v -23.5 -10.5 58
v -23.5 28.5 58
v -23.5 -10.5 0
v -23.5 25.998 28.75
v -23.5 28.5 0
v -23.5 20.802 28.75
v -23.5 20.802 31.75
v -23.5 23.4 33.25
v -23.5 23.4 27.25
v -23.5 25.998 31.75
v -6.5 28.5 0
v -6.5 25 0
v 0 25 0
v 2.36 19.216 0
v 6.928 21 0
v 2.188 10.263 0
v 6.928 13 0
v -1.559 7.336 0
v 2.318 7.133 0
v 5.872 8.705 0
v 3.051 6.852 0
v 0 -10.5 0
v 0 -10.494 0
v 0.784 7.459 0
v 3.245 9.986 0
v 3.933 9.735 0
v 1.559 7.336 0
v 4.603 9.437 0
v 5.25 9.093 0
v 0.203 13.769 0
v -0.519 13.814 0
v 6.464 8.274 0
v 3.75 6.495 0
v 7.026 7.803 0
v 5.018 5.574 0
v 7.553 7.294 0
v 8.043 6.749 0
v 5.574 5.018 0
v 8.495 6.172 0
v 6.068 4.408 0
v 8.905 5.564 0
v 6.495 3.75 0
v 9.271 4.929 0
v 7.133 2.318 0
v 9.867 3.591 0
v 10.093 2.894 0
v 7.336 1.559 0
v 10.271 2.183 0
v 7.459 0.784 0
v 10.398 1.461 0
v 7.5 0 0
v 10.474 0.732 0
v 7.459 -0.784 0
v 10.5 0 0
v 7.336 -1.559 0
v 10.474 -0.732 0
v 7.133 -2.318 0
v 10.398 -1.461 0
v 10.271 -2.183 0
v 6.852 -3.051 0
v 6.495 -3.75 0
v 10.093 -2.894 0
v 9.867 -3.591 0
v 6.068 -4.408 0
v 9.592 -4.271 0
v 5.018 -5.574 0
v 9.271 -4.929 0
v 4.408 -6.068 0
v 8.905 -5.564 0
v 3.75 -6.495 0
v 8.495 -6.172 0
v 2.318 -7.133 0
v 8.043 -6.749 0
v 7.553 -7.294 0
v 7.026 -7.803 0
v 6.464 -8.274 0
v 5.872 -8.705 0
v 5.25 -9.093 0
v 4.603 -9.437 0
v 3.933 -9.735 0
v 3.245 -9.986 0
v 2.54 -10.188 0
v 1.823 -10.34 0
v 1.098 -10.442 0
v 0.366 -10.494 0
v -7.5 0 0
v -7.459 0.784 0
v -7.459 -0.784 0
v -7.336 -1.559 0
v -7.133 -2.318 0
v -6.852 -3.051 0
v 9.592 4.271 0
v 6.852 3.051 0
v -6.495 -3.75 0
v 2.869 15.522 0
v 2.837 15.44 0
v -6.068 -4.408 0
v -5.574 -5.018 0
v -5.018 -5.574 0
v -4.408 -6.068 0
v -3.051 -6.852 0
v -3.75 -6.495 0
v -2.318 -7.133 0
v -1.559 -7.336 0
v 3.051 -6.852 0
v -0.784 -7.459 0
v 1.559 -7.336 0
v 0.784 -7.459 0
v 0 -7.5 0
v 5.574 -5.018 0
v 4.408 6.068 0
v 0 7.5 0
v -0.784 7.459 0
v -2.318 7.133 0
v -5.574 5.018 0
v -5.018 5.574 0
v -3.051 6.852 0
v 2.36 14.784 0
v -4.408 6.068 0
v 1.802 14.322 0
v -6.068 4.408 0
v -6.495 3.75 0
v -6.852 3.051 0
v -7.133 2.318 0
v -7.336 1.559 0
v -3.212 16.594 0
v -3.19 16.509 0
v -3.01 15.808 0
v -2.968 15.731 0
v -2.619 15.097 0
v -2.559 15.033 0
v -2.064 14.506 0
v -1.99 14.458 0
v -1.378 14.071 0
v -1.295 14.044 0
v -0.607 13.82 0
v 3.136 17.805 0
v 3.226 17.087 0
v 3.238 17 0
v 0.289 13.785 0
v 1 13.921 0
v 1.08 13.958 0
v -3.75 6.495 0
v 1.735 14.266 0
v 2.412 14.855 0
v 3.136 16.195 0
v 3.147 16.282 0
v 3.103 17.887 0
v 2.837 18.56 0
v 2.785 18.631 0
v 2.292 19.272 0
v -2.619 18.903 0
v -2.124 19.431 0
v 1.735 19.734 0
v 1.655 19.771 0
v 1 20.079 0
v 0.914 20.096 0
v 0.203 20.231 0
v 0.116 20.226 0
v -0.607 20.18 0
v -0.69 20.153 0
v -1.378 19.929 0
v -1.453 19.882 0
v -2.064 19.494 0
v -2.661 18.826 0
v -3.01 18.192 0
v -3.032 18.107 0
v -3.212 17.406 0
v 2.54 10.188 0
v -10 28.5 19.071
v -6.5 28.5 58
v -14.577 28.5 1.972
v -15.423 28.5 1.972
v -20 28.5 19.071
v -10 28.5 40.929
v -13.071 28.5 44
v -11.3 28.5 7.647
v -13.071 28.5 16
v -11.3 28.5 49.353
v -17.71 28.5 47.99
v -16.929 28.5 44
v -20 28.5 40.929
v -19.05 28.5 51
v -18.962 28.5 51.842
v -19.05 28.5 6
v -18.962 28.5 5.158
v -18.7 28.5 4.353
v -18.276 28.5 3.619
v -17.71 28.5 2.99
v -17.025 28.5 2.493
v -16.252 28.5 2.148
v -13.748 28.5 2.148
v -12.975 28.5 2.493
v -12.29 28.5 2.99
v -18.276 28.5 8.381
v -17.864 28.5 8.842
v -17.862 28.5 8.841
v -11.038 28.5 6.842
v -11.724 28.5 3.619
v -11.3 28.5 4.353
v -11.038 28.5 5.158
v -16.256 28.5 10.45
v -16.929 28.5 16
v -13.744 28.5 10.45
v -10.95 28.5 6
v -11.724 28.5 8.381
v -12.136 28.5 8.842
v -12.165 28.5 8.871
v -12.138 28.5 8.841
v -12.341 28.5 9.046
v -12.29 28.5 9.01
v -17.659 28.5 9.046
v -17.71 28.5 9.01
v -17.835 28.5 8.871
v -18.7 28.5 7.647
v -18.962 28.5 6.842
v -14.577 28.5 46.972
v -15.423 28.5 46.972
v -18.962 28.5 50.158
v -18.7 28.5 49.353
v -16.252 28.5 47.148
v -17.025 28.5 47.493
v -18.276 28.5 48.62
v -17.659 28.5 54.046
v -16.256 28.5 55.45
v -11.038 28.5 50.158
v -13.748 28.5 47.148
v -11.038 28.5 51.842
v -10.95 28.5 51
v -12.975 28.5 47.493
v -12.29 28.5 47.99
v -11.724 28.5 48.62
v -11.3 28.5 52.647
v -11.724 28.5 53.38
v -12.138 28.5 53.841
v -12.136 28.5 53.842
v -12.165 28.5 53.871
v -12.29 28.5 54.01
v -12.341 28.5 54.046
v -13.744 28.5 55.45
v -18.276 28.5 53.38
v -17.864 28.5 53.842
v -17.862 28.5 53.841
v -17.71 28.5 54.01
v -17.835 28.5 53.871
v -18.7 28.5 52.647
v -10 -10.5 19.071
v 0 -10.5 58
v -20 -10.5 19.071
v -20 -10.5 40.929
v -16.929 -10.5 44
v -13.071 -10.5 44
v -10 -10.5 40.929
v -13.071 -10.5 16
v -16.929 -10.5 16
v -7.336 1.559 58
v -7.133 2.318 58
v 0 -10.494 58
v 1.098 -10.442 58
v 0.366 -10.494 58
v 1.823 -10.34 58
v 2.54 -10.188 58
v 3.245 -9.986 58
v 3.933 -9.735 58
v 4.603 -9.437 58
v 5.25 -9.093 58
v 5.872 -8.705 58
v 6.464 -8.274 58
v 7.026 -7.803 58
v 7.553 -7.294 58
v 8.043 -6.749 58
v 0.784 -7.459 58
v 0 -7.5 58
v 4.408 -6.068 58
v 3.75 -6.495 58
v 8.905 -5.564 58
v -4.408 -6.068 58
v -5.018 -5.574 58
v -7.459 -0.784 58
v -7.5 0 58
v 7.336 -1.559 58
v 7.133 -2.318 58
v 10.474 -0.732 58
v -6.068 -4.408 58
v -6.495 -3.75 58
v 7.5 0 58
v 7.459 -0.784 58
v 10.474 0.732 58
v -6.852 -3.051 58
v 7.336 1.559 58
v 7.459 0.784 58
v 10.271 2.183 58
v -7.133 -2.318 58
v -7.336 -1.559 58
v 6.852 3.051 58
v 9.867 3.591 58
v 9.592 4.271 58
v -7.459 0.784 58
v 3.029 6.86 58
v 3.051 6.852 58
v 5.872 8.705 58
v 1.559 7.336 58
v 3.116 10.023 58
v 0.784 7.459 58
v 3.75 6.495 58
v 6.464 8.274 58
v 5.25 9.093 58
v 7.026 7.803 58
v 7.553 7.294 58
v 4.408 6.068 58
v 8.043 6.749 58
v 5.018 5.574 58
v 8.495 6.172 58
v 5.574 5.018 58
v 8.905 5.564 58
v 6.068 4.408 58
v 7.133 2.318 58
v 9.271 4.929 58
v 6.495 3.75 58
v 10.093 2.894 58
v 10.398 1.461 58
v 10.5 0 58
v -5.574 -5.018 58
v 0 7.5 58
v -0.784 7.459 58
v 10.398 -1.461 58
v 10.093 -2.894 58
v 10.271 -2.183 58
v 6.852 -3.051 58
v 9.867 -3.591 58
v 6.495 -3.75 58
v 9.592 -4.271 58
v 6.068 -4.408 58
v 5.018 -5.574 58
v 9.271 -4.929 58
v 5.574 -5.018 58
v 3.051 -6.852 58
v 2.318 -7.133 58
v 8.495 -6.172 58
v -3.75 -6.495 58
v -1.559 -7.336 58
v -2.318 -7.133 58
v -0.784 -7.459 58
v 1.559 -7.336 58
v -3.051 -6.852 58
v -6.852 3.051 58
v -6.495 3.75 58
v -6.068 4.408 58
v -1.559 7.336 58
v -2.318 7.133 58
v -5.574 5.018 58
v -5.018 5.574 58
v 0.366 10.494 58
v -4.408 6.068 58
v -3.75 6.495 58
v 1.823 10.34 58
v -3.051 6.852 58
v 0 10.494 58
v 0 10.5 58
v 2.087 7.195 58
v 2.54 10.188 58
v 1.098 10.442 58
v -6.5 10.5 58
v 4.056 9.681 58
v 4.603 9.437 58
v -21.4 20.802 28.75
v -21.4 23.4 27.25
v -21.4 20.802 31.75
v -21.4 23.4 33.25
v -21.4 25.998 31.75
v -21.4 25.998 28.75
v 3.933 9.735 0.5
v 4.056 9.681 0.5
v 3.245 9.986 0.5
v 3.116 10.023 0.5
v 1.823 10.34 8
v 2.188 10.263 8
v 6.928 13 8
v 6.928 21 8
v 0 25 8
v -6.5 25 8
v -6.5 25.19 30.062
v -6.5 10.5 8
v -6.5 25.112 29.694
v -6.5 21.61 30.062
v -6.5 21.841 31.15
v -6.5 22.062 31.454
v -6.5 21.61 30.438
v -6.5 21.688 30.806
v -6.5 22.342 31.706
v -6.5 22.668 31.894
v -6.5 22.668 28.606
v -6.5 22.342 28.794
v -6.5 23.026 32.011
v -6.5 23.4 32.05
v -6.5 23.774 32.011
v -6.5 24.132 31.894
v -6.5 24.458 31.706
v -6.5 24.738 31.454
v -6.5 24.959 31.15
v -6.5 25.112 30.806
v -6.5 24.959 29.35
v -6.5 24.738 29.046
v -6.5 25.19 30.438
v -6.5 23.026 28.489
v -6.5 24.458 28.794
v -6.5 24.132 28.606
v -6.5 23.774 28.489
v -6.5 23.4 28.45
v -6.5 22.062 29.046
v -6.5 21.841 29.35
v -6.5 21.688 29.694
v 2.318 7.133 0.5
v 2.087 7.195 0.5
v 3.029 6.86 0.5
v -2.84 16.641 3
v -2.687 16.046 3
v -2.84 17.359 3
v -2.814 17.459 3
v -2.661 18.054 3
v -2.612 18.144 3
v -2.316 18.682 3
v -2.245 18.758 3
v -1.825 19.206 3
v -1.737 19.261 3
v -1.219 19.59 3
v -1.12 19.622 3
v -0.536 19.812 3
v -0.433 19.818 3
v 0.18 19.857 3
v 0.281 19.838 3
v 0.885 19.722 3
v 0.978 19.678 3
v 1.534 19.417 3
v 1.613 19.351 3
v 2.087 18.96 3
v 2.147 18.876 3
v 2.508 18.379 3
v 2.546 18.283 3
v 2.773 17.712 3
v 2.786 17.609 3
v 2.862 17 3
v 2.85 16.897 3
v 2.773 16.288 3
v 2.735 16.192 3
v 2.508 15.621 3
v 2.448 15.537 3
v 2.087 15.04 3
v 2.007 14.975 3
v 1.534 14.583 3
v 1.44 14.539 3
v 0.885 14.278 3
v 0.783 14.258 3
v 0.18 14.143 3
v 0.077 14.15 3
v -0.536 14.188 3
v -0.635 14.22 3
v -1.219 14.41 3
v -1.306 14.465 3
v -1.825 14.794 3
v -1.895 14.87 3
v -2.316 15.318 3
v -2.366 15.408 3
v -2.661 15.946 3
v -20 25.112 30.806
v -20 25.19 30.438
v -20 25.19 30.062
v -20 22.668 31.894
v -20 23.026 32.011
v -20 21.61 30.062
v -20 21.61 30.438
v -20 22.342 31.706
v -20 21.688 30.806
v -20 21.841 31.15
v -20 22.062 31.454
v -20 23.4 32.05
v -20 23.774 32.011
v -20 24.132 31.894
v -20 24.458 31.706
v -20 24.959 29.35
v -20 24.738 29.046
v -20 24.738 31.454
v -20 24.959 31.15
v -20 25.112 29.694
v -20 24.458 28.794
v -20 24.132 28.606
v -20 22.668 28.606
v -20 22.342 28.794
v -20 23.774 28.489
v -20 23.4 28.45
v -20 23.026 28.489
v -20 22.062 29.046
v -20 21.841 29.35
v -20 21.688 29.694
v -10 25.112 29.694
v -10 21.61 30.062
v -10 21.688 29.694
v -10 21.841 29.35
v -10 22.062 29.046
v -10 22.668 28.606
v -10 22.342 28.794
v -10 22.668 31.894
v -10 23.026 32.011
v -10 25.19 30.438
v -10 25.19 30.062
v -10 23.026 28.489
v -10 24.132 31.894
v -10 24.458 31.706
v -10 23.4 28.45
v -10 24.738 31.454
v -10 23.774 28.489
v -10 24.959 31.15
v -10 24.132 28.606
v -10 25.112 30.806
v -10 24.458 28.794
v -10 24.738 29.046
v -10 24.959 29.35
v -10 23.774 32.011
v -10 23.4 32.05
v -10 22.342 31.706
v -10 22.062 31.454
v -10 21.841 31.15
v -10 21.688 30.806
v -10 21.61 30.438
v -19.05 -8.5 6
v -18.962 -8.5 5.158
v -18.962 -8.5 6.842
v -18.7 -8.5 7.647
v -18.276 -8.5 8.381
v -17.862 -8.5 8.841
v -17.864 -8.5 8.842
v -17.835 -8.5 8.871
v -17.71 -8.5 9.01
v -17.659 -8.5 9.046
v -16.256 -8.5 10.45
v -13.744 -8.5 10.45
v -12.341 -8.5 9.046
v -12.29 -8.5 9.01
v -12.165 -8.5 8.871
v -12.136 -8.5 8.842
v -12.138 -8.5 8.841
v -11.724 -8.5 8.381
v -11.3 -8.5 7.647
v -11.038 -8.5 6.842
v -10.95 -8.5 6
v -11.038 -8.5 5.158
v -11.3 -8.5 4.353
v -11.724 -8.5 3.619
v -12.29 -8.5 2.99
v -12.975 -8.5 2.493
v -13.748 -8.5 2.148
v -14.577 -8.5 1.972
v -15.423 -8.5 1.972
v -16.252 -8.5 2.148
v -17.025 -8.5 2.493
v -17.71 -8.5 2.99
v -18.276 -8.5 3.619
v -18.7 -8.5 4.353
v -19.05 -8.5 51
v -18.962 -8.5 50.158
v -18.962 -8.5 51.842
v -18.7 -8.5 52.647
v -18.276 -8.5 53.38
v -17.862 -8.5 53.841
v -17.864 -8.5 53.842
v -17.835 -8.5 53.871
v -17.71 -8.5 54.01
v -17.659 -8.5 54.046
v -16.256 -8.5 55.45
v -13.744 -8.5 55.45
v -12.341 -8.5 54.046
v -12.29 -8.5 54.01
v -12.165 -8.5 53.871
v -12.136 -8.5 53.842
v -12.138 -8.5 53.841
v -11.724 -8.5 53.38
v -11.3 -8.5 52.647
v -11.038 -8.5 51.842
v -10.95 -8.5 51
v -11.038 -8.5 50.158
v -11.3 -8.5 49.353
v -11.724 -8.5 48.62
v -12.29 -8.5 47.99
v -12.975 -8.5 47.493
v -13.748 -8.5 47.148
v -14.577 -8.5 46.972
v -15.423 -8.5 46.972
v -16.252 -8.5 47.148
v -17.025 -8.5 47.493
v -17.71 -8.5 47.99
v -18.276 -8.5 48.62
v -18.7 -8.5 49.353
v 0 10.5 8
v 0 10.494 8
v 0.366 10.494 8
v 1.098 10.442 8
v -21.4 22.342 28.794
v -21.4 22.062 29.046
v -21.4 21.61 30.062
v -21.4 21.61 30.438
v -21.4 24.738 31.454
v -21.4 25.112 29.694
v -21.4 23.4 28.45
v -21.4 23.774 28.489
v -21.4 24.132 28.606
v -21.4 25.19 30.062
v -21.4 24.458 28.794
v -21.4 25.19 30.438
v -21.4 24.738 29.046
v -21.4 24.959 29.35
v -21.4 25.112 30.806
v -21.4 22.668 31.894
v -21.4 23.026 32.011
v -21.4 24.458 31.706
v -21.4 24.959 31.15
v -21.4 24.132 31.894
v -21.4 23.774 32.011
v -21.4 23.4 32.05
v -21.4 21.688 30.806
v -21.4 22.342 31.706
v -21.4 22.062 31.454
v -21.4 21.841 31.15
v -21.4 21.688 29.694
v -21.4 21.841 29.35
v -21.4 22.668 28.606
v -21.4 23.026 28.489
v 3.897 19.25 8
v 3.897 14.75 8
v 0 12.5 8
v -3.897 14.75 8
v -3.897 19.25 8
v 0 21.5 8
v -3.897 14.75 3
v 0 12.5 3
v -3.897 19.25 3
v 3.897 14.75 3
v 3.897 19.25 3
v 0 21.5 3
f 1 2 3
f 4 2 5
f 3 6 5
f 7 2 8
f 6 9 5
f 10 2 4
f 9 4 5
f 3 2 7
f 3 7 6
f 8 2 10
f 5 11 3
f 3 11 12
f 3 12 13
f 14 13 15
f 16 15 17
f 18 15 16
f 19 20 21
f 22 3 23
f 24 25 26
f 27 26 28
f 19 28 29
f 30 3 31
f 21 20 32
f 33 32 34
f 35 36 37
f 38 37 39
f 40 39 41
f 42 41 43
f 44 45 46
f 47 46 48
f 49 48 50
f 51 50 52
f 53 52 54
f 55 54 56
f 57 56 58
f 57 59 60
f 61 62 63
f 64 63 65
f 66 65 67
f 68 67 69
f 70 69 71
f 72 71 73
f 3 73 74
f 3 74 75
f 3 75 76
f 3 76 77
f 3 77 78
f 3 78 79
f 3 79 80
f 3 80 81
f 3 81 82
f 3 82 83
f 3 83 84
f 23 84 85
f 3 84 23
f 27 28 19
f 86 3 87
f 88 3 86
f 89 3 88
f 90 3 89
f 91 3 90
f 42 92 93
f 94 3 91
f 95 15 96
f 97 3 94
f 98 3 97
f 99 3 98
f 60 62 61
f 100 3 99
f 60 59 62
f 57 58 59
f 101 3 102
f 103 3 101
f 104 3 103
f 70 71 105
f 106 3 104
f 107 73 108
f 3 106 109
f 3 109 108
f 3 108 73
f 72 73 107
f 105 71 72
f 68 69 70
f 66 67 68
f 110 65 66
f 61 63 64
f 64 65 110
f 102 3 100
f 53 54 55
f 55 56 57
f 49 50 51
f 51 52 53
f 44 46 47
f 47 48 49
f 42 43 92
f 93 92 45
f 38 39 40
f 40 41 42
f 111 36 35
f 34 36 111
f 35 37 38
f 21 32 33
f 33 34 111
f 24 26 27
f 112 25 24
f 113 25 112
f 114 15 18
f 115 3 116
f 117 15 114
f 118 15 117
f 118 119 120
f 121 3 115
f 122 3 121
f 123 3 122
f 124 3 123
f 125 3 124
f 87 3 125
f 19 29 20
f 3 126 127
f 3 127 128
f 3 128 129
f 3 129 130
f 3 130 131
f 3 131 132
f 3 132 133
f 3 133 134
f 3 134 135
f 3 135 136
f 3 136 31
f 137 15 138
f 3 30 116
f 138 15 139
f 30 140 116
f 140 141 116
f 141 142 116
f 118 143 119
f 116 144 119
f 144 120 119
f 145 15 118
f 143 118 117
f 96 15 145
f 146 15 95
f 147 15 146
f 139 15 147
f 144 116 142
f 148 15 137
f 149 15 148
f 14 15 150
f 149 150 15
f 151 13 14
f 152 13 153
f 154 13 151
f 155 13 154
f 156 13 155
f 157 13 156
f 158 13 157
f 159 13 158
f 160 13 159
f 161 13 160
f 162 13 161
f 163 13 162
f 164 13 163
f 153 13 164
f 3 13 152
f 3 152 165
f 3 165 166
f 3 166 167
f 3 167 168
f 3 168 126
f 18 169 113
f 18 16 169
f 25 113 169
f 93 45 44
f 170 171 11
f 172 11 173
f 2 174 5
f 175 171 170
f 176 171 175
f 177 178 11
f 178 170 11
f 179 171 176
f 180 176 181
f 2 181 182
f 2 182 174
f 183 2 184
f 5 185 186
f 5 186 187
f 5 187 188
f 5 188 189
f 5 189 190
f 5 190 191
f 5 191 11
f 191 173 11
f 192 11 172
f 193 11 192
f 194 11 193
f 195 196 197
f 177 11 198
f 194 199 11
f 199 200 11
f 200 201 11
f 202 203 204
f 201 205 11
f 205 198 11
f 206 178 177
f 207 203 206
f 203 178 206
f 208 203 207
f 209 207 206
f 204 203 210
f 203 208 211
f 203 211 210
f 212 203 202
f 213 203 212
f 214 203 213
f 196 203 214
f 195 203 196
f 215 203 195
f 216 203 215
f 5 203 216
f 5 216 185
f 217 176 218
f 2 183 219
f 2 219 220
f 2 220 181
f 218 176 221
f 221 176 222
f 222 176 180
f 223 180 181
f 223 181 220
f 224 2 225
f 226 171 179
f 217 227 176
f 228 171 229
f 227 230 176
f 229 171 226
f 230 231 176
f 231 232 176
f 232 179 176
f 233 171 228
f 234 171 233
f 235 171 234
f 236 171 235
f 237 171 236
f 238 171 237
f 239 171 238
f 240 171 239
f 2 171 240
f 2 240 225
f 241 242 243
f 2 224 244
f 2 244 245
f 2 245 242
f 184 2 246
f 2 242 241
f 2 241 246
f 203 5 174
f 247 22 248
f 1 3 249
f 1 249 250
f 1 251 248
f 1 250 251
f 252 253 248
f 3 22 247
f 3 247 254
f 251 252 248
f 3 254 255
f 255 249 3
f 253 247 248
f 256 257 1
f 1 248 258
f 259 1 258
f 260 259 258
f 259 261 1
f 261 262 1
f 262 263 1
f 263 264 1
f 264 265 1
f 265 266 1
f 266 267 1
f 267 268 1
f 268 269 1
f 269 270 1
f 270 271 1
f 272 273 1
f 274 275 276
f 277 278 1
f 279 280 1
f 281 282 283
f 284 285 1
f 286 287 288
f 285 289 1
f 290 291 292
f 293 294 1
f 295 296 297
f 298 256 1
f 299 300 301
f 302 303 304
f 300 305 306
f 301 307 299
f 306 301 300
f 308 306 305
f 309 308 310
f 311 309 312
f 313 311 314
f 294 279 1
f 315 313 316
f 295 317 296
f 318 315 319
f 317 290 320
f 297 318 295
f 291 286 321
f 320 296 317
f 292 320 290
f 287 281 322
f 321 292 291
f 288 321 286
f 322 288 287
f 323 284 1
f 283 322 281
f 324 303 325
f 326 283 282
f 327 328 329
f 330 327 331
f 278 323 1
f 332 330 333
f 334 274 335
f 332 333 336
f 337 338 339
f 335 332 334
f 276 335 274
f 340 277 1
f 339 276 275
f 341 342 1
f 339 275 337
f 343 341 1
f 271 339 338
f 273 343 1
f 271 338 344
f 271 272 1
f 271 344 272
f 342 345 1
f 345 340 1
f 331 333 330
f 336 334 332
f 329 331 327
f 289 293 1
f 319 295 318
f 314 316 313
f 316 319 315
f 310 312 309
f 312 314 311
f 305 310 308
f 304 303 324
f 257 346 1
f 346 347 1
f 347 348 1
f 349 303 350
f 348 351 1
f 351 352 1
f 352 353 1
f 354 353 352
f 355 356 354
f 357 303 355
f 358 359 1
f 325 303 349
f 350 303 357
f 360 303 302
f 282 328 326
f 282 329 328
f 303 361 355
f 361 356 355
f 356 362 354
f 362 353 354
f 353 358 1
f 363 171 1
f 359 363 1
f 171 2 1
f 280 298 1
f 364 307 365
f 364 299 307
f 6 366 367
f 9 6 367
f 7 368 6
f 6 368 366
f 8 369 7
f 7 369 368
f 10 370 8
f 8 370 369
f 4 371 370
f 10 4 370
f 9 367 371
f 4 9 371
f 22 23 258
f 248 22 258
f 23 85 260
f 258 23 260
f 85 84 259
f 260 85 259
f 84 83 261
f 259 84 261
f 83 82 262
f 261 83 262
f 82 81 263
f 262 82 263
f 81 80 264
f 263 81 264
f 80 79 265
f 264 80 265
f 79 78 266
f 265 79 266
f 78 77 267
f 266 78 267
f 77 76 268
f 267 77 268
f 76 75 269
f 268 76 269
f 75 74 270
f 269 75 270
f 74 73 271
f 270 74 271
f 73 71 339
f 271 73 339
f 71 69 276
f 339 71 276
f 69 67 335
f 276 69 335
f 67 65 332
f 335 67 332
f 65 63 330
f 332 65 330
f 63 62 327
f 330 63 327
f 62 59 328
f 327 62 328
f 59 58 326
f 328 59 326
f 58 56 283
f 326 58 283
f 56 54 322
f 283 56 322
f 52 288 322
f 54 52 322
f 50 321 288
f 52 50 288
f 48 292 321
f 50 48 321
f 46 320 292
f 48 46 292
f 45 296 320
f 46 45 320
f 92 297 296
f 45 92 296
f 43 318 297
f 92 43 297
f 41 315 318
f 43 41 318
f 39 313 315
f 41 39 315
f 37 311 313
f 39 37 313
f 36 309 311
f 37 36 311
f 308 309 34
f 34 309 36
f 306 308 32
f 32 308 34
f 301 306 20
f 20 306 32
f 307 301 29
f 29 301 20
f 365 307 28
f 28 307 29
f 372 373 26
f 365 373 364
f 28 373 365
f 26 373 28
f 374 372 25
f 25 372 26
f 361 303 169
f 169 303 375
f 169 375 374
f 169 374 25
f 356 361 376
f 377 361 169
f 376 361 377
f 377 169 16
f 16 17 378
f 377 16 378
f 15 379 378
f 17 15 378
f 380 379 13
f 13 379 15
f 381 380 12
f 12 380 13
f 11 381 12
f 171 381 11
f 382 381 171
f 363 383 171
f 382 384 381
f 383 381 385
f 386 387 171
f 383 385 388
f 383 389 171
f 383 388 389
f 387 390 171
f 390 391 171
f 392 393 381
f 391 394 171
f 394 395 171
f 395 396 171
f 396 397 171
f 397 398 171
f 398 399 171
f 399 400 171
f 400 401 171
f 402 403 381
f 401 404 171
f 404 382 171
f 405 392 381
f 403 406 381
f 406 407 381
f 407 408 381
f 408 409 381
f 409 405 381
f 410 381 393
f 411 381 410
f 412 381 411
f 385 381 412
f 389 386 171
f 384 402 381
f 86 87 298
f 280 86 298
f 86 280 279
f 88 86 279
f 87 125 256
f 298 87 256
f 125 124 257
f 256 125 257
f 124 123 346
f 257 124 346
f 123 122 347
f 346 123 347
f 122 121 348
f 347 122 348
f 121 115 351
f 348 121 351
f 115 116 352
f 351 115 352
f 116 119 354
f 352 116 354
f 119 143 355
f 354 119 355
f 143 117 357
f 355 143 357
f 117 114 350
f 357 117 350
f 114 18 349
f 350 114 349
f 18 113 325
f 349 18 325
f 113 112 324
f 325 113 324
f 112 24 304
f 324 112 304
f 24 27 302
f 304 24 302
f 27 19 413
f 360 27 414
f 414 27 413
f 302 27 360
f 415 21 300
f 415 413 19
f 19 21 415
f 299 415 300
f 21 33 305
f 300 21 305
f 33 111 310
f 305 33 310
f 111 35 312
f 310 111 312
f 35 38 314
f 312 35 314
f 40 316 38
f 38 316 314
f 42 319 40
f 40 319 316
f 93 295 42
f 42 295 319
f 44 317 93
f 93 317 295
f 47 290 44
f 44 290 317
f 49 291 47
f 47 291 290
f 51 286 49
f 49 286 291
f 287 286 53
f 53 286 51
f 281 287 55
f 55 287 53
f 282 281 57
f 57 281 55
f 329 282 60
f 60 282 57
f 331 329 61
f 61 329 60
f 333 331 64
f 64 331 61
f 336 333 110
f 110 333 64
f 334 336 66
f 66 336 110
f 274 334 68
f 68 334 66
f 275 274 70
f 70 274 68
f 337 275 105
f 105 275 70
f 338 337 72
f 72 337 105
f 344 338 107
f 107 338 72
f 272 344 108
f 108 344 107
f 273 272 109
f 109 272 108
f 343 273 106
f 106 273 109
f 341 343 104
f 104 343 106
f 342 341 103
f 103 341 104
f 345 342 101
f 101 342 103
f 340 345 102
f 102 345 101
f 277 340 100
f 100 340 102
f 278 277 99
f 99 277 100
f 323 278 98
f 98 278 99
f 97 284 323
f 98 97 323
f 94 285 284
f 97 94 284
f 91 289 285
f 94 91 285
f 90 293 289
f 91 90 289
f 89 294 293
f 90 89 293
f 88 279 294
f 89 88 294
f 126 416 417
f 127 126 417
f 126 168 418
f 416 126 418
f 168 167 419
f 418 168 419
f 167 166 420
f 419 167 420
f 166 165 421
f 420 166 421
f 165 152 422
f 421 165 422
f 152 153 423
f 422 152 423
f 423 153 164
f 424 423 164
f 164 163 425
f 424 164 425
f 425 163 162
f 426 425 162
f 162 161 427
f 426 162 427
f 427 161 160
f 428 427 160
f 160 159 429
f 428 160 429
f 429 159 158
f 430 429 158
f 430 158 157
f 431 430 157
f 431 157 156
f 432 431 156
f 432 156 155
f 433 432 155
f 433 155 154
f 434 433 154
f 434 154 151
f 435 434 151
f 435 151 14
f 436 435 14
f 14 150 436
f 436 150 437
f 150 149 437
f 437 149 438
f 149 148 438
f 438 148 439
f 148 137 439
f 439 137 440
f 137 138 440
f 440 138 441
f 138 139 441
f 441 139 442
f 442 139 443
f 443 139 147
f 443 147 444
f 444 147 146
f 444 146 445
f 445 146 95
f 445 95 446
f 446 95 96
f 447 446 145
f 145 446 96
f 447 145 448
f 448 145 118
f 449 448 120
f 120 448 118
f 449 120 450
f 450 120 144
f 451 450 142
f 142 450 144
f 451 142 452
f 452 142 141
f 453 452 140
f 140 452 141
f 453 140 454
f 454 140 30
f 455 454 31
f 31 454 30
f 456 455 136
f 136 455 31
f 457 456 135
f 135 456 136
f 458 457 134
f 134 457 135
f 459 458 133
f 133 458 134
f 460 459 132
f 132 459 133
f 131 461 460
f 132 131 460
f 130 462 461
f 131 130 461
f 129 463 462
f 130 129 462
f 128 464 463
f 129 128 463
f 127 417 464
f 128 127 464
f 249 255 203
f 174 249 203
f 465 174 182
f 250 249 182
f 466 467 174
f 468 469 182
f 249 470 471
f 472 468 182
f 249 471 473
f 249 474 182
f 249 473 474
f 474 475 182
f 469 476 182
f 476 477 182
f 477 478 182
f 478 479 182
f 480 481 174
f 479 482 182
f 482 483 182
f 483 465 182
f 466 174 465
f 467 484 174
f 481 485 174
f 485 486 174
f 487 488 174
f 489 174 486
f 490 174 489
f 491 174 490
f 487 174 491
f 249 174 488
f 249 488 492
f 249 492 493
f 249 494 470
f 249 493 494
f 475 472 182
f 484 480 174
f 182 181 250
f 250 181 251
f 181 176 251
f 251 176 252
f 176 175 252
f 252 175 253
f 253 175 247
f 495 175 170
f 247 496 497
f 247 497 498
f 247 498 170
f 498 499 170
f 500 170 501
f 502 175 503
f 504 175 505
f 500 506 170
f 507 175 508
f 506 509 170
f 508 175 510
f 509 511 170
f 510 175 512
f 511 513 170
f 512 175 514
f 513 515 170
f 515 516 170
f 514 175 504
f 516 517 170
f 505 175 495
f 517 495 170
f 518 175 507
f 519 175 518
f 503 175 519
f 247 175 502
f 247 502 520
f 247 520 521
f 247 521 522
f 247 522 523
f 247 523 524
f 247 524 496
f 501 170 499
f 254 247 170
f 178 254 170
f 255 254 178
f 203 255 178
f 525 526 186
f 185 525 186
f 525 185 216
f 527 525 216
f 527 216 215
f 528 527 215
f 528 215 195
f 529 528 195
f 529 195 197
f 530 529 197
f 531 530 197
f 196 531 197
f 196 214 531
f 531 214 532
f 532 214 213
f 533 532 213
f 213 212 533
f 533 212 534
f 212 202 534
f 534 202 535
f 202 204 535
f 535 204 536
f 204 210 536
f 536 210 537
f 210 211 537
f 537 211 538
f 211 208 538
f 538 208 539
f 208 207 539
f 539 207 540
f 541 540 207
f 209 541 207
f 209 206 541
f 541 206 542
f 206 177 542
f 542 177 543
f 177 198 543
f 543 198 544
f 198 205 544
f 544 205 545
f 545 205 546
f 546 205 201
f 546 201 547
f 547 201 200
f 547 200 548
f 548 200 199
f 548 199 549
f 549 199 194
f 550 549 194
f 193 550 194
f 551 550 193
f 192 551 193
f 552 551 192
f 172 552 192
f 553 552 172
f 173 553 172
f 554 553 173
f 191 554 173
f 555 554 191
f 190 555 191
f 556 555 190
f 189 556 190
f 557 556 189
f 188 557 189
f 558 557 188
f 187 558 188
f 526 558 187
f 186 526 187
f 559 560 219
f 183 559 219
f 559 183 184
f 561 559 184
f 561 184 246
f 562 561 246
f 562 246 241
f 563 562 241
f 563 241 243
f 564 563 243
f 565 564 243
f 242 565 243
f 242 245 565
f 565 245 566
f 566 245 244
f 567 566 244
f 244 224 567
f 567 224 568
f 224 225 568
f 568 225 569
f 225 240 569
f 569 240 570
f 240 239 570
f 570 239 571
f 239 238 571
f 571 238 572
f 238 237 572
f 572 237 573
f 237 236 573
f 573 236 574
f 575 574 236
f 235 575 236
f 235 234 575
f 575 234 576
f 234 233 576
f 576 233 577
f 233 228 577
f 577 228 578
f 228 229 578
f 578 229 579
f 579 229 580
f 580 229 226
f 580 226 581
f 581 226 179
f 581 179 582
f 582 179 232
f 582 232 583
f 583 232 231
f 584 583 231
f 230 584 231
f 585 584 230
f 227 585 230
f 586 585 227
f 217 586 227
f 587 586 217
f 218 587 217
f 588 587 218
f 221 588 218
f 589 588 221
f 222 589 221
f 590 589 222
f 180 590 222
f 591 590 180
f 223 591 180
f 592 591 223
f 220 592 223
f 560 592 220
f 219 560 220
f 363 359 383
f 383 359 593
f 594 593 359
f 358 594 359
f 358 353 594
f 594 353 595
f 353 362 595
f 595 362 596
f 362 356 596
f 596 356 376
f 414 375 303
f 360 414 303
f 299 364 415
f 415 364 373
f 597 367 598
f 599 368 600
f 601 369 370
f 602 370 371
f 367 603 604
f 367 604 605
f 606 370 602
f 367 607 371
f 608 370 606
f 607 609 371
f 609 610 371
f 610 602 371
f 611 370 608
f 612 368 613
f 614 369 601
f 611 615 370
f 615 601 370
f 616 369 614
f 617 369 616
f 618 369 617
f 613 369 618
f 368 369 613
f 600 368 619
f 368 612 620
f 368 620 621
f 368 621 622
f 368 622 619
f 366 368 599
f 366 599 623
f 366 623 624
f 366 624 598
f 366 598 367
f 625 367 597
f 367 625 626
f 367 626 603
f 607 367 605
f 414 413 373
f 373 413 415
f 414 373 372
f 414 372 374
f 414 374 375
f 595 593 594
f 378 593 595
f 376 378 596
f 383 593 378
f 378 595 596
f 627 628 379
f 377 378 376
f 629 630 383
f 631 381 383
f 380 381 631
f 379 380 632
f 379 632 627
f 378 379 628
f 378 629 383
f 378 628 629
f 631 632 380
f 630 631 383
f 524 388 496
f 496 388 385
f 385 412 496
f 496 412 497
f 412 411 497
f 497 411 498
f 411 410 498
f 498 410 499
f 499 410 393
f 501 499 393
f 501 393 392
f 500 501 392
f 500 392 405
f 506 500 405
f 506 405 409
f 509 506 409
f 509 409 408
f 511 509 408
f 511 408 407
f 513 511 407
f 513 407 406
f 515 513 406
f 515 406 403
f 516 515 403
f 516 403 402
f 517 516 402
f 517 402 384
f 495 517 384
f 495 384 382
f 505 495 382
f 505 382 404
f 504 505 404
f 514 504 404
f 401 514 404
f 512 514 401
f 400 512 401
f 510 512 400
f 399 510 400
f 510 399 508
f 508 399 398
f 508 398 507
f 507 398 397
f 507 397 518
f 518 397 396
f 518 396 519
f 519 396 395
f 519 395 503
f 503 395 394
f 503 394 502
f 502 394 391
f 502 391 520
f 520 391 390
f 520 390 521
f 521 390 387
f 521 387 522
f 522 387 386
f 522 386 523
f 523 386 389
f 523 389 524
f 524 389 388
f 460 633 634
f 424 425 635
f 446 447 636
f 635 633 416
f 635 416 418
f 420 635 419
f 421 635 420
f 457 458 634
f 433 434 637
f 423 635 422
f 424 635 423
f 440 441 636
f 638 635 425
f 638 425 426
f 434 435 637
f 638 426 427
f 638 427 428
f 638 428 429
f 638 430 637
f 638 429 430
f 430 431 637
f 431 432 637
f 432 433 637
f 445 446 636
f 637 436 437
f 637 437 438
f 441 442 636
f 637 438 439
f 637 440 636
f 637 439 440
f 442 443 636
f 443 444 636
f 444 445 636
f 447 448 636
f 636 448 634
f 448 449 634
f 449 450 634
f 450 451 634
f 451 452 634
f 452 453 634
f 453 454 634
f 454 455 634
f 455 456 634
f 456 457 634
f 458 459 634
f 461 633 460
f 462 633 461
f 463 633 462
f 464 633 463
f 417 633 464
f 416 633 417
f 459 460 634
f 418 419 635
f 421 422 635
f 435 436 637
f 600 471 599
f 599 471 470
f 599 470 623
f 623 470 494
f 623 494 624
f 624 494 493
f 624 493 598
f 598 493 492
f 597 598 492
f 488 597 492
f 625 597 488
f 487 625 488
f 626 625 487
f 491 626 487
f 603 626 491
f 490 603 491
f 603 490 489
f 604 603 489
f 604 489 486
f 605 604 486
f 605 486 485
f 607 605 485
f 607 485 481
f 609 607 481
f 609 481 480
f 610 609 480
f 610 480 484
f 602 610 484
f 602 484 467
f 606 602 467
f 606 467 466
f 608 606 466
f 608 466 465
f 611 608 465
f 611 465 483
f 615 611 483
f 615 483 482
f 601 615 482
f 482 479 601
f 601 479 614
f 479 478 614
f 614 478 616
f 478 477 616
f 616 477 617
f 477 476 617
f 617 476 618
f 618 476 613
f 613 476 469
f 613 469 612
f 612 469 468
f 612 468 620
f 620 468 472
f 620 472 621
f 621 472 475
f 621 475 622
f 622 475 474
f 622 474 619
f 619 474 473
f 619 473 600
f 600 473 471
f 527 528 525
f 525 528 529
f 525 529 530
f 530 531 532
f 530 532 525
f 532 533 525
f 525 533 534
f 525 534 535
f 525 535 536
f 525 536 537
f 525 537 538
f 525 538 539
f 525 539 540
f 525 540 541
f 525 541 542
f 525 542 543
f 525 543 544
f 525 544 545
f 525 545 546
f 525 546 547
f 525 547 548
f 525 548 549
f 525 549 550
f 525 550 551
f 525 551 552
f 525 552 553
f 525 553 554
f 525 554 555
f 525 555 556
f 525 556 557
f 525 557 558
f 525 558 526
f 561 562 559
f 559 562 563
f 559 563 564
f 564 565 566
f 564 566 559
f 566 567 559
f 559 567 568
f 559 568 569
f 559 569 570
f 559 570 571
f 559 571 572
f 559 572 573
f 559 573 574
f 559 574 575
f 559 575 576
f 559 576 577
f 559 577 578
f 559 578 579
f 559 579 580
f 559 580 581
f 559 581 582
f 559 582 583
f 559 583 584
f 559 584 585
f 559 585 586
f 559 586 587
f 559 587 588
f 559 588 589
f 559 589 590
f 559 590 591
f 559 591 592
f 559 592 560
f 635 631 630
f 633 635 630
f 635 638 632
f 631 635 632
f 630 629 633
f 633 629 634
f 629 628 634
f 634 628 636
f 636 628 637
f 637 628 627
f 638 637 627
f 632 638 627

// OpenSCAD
// file: inc/bearing.scad
// PRUSA iteration3
// Bearing holders
// GNU GPL v3
// Josef Průša <iam@josefprusa.cz> and contributors
// http://www.reprap.org/wiki/Prusa_Mendel
// http://prusamendel.org

bearing_diameter = 15;

module horizontal_bearing_base(bearings=1){
 translate(v=[0,0,6]) cube(size = [24,8+bearings*25,12], center = true);	
}
module horizontal_bearing_holes(bearings=1){
 cutter_lenght = 10+bearings*25;
 one_holder_lenght = 8+25;
 holder_lenght = 8+bearings*25;
 
 // Main bearing cut
 difference(){
  translate(v=[0,0,12+1.5]) rotate(a=[90,0,0]) translate(v=[0,0,-cutter_lenght/2]) cylinder(h = cutter_lenght, r=bearing_diameter/2, $fn=50);
  // Bearing retainers
  translate(v=[0,1-holder_lenght/2,3+1.5]) cube(size = [24,6,8], center = true);
  translate(v=[0,-1+holder_lenght/2,3+1.5]) cube(size = [24,6,8], center = true);
 }
 
 // Ziptie cutouts
 ziptie_cut_ofset = 0;
 for ( i = [0 : bearings-1] ){
  // For easier positioning I move them by half of one 
  // bearing holder then add each bearign lenght and then center again
  translate(v=[0,-holder_lenght/2,0]) translate(v=[0,one_holder_lenght/2+i*25,0]) difference(){
   union(){
    translate(v=[0,2-6,12]) rotate(a=[90,0,0]) translate(v=[0,0,0]) cylinder(h = 4, r=12.5, $fn=50);
    translate(v=[0,2+6,12]) rotate(a=[90,0,0]) translate(v=[0,0,0]) cylinder(h = 4, r=12.5, $fn=50);
   }
   translate(v=[0,10,12]) rotate(a=[90,0,0]) translate(v=[0,0,0]) cylinder(h = 24, r=10, $fn=50);
  }
 }
 
}

module horizontal_bearing_test(){
 difference(){
  horizontal_bearing_base(1);
  horizontal_bearing_holes(1);
 }
 translate(v=[30,0,0]) difference(){
  horizontal_bearing_base(2);
  horizontal_bearing_holes(2);
 }
 translate(v=[60,0,0]) difference(){
  horizontal_bearing_base(3);
  horizontal_bearing_holes(3);
 }
}



thinwall = 3;
bearing_size = bearing_diameter + 2 * thinwall;

module vertical_bearing_base(){
 translate(v=[-2-bearing_size/4,0,29]) cube(size = [4+bearing_size/2,bearing_size,58], center = true);
 cylinder(h = 58, r=bearing_size/2, $fn = 90);
}

module vertical_bearing_holes(){
  translate(v=[0,0,-1]) cylinder(h = 62, r=bearing_diameter/2, $fn = 60);
  rotate(a=[0,0,-70]) translate(v=[8,0,31.5]) cube(size = [5,1,62], center = true);
}

difference(){
vertical_bearing_base();
vertical_bearing_holes();
}
// file: inc/x-end.scad
// PRUSA iteration3
// X end prototype
// GNU GPL v3
// Josef Průša <iam@josefprusa.cz> and contributors
// http://www.reprap.org/wiki/Prusa_Mendel
// http://prusamendel.org

use <bearing.scad>
rod_distance = 45;

module x_end_base(){
// Main block
height = 58;
translate(v=[-15,-9,height/2]) cube(size = [17,39,height], center = true);
// Bearing holder
 vertical_bearing_base();	
//Nut trap
 // Cube
 translate(v=[-2-2,-17,4]) cube(size = [8,16,8], center = true);
 // Hexagon
 translate(v=[0,-17,0]) rotate([0,0,30]) cylinder(h = 8, r=8, $fn = 6);
}

module x_end_holes(){
 vertical_bearing_holes();
// Belt hole
translate(v=[-1,0,0]){
difference(){
	translate(v=[-5.5-10+1.5,-10,30]) cube(size = [10,46,28], center = true);
	// Nice edges
	translate(v=[-5.5-10+1.5,-10,30+23]) rotate([0,45,0]) cube(size = [10,46,28], center = true);
	translate(v=[-5.5-10+1.5,-10,30+23]) rotate([0,-45,0]) cube(size = [10,46,28], center = true);
	translate(v=[-5.5-10+1.5,-10,30-23]) rotate([0,45,0]) cube(size = [10,46,28], center = true);
	translate(v=[-5.5-10+1.5,-10,30-23]) rotate([0,-45,0]) cube(size = [10,46,28], center = true);

}
}

// Bottom pushfit rod
translate(v=[-15,-41.5,6]) rotate(a=[-90,0,0]) pushfit_rod(8.1,50);
// Top pushfit rod
translate(v=[-15,-41.5,rod_distance+6]) rotate(a=[-90,0,0]) pushfit_rod(8.1,50);
// Nut trap
 translate(v=[0,-17,-0.5]) cylinder(h = 4, r1=3.3, r2=2.8, $fn=25);
 translate(v=[0,-17,3]) rotate([0,0,30]) cylinder(h = 10, r=4.5, $fn = 6);
}


// Final prototype
module x_end_plain(){
 difference(){
  x_end_base();
  x_end_holes();
 }
}

x_end_plain();


module pushfit_rod(diameter,length){
 cylinder(h = length, r=diameter/2, $fn=30);
 difference(){
 	translate(v=[0,-diameter/2.85,length/2]) rotate([0,0,45]) cube(size = [diameter/2,diameter/2,length], center = true);
 	translate(v=[0,-diameter/4-diameter/2-0.4,length/2]) rotate([0,0,0]) cube(size = [diameter,diameter/2,length], center = true);
 }
 //translate(v=[0,-diameter/2-2,length/2]) cube(size = [diameter,1,length], center = true);
}
// main file
// PRUSA iteration3
// x end idler
// GNU GPL v3
// Josef Průša <iam@josefprusa.cz> and contributors
// http://www.reprap.org/wiki/Prusa_Mendel
// http://prusamendel.org

use <inc/x-end.scad>

module x_end_idler_base(){
 x_end_base();
}

module x_end_idler_holes(){
 x_end_holes();
 translate(v=[0,-23.4,30.25]) rotate(a=[0,-90,0]) cylinder(h = 40, r=1.8, $fn=30);
 translate(v=[-21.4,-23.4,30.25])rotate(a=[0,-90,0])cylinder(h = 2.2, r=3, $fn=6);	
}
 
// Final part
module x_end_idler(){
 mirror([0,1,0]) difference(){
  x_end_idler_base();
  x_end_idler_holes();
 }
}

x_end_idler();
